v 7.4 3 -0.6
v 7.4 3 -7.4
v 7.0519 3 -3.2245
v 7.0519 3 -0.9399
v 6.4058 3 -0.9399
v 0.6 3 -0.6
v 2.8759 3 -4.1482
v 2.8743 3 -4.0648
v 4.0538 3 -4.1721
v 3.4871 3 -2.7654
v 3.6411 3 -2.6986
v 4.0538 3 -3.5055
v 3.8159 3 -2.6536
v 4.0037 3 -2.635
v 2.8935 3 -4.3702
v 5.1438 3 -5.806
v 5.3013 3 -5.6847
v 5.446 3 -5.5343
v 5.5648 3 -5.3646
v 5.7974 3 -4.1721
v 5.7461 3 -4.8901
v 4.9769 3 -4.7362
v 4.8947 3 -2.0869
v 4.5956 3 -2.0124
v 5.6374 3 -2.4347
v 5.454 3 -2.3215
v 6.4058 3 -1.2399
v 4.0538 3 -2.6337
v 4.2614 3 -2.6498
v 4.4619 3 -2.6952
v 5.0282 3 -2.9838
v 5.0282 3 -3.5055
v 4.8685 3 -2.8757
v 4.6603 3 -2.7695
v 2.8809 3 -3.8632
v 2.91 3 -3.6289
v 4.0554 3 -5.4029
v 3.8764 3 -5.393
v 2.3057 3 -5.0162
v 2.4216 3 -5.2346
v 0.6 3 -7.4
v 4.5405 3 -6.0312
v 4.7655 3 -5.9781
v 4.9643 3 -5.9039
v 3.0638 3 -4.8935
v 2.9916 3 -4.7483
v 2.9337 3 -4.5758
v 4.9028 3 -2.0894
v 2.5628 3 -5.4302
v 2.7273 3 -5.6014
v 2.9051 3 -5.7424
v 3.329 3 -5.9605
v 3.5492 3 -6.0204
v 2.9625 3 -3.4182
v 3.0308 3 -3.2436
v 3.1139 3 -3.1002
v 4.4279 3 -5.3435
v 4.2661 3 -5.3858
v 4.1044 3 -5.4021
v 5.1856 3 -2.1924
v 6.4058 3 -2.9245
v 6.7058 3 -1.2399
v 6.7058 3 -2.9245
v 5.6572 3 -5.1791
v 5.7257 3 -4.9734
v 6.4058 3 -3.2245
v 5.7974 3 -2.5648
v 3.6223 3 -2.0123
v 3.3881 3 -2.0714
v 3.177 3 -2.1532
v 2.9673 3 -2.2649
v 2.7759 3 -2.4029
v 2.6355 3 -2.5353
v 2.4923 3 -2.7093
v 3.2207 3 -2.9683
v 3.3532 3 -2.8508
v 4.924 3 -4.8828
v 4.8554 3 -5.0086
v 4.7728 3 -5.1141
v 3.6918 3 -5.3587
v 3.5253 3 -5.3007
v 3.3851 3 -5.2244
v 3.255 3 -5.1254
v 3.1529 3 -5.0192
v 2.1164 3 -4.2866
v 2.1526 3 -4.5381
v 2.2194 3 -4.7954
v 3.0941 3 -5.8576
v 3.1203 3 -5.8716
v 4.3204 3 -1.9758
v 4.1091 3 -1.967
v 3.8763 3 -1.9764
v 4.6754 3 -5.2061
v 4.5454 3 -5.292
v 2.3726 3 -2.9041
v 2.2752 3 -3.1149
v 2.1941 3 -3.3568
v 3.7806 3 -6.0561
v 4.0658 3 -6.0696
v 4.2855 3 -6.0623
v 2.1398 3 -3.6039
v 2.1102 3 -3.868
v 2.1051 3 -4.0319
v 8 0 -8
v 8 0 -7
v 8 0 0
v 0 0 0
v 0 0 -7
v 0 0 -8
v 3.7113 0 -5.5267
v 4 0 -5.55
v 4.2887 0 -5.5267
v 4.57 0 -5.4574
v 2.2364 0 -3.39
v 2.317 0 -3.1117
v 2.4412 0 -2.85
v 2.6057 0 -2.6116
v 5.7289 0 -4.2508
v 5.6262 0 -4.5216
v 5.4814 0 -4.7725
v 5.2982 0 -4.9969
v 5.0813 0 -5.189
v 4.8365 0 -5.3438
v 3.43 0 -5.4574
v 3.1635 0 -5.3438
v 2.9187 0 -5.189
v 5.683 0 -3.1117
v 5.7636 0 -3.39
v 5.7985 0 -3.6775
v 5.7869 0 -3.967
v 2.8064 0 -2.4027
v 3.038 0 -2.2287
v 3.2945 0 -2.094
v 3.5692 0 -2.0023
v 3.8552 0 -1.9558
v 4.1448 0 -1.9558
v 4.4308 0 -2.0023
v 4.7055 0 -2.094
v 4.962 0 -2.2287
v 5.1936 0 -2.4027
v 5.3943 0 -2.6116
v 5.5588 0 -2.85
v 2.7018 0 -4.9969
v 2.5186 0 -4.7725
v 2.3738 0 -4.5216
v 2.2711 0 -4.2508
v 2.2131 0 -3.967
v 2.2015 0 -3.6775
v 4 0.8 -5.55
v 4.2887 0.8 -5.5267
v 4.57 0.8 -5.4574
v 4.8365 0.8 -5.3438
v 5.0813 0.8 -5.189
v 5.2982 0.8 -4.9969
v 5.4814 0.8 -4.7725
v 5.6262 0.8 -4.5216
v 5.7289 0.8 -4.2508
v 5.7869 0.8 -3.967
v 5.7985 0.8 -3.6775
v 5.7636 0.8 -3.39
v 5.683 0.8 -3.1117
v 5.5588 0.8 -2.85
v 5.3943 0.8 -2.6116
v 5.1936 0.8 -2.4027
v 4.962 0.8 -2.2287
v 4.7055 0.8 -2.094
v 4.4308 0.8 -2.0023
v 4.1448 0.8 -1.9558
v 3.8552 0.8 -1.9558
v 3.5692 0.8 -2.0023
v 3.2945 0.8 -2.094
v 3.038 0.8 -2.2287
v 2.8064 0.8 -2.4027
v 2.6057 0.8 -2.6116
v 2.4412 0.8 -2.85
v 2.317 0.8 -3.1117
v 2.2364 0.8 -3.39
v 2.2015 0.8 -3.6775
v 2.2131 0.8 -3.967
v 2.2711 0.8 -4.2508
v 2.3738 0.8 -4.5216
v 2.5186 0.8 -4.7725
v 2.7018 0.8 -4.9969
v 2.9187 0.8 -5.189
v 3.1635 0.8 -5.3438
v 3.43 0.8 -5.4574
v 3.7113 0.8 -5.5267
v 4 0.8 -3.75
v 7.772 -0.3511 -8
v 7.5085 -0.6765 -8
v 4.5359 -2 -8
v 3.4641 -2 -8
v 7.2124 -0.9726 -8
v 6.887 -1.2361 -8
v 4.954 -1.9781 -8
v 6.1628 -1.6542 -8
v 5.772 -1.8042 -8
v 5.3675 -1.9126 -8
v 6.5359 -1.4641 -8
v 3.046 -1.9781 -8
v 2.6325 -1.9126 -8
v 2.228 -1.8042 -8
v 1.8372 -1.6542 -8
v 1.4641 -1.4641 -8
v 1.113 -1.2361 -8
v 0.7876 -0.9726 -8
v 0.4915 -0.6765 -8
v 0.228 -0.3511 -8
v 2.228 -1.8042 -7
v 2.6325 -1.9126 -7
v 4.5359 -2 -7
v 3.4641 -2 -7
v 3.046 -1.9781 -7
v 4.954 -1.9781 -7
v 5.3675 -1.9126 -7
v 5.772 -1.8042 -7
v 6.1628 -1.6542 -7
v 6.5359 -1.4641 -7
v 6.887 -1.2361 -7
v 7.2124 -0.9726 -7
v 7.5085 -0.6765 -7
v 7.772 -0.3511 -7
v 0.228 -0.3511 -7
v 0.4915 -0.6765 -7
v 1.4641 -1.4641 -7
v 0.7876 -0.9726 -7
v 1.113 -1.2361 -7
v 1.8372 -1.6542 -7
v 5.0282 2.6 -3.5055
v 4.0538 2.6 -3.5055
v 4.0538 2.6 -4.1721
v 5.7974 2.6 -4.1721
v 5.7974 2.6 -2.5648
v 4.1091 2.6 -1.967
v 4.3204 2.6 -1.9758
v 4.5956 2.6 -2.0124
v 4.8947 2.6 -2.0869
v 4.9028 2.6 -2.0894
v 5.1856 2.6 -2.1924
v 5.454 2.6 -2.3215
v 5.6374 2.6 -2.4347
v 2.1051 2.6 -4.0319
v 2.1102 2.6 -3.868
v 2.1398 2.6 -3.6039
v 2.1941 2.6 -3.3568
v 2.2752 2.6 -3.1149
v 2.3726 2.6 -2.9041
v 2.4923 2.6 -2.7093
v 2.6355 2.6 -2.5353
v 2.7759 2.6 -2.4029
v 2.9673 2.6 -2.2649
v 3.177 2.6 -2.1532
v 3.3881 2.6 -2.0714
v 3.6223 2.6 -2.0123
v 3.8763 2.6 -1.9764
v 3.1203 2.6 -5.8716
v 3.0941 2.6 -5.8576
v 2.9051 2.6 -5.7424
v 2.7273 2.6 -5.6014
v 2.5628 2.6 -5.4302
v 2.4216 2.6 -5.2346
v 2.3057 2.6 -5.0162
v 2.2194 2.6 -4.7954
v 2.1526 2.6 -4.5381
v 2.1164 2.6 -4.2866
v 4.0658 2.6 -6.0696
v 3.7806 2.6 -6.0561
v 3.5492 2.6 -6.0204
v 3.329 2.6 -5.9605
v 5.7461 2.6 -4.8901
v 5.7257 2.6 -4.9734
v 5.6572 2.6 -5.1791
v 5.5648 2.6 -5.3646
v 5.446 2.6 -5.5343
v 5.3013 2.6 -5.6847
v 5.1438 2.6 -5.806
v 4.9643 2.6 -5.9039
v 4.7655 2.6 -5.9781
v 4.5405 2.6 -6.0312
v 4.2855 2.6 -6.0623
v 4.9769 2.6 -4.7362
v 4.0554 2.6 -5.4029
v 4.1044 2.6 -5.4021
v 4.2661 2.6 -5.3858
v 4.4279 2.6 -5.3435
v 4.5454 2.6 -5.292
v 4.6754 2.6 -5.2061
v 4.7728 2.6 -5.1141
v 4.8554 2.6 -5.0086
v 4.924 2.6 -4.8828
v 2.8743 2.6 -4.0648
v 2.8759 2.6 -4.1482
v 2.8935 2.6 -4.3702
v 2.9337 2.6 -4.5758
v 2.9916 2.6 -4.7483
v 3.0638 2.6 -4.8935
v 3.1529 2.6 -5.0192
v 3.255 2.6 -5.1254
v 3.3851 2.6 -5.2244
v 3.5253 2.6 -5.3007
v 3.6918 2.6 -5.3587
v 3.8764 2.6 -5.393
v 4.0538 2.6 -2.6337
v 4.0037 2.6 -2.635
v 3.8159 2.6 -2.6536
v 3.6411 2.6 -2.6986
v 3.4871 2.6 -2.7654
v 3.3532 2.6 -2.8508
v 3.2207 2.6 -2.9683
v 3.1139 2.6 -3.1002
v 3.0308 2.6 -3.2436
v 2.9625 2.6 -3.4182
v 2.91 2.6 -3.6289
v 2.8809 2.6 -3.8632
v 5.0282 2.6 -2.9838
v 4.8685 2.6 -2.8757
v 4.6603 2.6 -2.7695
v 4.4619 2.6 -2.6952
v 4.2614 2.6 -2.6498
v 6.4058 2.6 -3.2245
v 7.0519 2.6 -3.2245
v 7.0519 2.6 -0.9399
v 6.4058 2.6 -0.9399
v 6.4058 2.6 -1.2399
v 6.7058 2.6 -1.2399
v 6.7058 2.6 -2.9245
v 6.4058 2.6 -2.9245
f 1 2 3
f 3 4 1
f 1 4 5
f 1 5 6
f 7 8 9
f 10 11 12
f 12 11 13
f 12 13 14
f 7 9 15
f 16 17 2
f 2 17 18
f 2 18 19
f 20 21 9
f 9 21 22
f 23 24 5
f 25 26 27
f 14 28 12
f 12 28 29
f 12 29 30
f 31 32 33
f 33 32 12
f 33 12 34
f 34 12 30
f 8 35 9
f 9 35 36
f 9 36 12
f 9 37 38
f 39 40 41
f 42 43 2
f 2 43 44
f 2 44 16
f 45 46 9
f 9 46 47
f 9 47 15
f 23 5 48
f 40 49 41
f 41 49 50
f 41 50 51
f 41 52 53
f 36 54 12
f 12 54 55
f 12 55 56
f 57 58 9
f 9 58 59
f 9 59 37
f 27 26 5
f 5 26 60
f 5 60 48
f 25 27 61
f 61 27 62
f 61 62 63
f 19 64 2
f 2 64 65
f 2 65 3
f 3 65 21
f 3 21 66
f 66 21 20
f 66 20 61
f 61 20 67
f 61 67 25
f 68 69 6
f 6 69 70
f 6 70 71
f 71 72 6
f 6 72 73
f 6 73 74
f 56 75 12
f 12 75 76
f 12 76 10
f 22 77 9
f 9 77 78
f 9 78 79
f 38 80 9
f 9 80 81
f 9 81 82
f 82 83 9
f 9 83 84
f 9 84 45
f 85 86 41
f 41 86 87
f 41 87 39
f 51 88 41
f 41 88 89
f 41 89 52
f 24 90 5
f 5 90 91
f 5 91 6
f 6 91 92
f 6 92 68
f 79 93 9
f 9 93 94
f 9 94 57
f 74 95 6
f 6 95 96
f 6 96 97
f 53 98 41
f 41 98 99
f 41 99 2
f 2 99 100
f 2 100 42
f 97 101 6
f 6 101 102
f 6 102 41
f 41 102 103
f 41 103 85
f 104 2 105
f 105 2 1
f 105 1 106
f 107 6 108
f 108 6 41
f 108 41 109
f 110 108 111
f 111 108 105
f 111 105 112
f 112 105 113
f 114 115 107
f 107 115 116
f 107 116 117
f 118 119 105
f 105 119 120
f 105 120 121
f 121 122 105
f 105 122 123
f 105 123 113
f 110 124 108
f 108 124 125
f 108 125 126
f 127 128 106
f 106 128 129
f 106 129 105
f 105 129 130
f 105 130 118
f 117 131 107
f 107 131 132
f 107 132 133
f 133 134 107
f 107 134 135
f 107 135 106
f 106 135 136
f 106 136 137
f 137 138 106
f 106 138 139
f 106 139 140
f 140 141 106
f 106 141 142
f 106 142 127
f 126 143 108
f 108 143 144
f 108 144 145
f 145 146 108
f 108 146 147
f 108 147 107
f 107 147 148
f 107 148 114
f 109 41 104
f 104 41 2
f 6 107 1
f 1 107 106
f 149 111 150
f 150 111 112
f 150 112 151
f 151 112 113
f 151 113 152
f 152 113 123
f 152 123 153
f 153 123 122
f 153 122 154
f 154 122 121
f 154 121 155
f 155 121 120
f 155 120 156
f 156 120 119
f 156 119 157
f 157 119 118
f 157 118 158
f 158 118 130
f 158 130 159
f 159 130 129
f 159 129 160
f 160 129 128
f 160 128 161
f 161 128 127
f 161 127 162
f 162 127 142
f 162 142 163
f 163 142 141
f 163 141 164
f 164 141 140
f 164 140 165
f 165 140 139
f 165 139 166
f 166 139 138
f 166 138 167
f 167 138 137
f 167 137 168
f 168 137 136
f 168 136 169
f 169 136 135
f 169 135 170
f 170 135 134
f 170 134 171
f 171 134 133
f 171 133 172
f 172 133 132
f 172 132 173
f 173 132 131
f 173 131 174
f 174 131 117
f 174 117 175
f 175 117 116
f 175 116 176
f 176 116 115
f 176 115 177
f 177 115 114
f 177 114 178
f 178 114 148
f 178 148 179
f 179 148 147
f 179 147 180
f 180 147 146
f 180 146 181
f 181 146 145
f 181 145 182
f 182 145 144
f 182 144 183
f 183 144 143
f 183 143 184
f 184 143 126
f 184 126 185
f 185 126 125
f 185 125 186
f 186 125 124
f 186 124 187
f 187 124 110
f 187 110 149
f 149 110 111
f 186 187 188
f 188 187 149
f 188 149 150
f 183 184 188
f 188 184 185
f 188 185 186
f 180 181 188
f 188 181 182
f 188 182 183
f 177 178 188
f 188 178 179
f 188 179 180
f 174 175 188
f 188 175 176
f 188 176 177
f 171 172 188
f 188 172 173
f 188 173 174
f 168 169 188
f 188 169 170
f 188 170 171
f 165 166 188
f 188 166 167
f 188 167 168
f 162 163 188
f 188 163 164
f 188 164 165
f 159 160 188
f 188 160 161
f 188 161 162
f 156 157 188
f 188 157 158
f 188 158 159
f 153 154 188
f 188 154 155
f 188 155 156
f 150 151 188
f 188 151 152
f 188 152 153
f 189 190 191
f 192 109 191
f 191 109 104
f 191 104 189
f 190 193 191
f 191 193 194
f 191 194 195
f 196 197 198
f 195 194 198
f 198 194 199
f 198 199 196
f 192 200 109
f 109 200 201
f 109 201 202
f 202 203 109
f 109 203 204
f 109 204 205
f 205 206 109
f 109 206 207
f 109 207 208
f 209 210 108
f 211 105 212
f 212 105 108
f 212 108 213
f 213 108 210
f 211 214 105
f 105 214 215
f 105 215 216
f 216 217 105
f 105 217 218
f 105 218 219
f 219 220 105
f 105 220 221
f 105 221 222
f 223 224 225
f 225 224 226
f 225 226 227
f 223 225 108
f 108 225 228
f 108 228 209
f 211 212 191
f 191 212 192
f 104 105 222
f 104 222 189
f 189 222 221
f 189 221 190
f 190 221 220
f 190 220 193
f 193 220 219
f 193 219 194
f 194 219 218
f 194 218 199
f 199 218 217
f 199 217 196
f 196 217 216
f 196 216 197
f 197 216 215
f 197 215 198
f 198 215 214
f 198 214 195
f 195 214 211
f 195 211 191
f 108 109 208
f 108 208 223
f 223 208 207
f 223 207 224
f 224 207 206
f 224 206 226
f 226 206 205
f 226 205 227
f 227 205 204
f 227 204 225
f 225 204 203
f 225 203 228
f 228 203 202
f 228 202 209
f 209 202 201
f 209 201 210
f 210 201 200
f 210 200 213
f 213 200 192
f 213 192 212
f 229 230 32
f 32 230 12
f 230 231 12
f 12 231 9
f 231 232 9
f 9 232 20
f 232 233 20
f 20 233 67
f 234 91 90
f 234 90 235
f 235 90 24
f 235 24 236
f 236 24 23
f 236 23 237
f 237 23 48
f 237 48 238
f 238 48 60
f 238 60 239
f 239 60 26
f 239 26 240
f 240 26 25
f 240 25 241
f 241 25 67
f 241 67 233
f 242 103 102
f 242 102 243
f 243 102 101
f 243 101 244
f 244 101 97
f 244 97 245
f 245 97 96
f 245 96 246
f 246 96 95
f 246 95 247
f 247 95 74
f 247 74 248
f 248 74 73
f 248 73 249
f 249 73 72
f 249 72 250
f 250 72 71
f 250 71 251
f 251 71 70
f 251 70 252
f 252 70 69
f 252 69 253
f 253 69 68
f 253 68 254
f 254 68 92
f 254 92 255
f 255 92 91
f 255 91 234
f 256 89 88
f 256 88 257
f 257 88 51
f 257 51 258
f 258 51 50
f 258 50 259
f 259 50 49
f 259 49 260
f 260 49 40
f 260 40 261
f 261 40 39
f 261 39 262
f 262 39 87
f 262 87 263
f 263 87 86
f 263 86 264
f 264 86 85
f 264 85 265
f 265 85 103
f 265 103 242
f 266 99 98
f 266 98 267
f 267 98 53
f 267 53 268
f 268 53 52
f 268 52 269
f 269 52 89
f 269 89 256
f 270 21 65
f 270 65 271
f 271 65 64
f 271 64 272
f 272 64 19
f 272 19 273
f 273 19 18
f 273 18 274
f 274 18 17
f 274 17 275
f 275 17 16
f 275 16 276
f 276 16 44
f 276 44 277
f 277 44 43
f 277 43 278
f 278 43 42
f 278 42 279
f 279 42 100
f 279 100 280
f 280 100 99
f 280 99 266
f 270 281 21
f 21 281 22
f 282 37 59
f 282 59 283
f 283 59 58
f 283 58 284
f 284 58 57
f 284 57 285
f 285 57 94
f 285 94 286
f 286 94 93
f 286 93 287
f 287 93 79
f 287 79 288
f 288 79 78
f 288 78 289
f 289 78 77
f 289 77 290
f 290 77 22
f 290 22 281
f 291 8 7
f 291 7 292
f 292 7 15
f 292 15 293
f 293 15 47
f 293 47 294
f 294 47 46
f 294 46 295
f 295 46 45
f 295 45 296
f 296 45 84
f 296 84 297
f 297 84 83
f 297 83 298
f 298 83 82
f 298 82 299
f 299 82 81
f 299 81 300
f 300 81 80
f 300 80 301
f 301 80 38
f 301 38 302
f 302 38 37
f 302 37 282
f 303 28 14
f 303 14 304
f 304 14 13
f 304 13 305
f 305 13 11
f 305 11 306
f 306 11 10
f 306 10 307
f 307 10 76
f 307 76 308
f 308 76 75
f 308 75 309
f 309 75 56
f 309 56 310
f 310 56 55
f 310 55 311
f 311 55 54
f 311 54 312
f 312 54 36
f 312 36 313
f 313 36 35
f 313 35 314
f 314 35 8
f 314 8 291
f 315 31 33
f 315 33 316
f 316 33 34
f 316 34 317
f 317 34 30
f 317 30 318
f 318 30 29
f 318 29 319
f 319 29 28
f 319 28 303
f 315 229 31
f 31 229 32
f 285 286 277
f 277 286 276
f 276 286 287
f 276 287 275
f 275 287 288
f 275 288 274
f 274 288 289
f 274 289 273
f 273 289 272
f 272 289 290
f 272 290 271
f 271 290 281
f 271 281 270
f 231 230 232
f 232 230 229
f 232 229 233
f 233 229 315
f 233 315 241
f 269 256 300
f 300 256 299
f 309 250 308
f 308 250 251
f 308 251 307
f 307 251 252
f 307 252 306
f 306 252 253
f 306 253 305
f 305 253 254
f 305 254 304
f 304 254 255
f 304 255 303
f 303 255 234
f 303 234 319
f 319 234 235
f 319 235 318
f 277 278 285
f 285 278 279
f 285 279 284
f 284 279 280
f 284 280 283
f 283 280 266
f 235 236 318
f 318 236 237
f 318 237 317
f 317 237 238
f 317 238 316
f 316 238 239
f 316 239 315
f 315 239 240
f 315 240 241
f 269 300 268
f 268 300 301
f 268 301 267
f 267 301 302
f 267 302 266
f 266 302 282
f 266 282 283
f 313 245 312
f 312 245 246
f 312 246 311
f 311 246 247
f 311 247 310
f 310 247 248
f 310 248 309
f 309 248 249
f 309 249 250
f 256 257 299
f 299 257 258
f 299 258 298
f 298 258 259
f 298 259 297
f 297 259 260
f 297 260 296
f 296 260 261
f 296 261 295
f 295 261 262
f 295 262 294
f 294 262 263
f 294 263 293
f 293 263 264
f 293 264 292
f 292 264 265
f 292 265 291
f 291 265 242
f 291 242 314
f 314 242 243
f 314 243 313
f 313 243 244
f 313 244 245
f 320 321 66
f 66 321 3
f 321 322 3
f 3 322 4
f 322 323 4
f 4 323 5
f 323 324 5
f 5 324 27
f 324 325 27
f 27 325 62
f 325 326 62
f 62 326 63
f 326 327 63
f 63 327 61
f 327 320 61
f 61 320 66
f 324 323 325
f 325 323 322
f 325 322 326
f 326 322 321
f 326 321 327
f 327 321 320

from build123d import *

# Parameters (mm, degrees)
SKETCH1_W               = 8
SKETCH1_H               = 8
BOSS_EXTRUDE1_DEPTH     = 3
CUT_EXTRUDE1_DEPTH      = 12.704699911
CUT_EXTRUDE1_DEPTH_BACK = 12.704699911
CUT_EXTRUDE2_DEPTH      = 11
SKETCH4_R               = 1.8
CUT_EXTRUDE3_DEPTH      = 0.8
SKETCH5_W               = 8
SKETCH5_H               = 1
BOSS_EXTRUDE2_DEPTH     = 2
FILLET1_R               = 4
CUT_EXTRUDE4_DEPTH      = 0.4
CUT_EXTRUDE5_DEPTH      = 0.4


with BuildPart() as part:
    # Sketch1 → Boss-Extrude1 (new body)
    with BuildSketch(Plane(origin=(0, 0, 0), x_dir=(1, 0, 0), z_dir=(0, 1, 0))):
        with Locations((4, 4)):
            Rectangle(SKETCH1_W, SKETCH1_H)
    extrude(amount=BOSS_EXTRUDE1_DEPTH)

    # Sketch2 → Cut-Extrude1 (cut, two sides: drawn at the far end of the back side and taken through both)
    with BuildSketch(Plane.XY.offset(-CUT_EXTRUDE1_DEPTH_BACK)):
        Polygon((0, 0), (0.6, 3), (0, 3), align=None)
        Polygon((8, 0), (7.4, 3), (8, 3), align=None)
    extrude(amount=CUT_EXTRUDE1_DEPTH + CUT_EXTRUDE1_DEPTH_BACK, mode=Mode.SUBTRACT)

    # Sketch3 → Cut-Extrude2 (cut)
    with BuildSketch(Plane(origin=(0, 0, 0), x_dir=(0, 0, -1), z_dir=(1, 0, 0))):
        Polygon((0, 0), (0.6, 3), (0, 3), align=None)
        Polygon((8, 3), (7.4, 3), (8, 0), align=None)
    extrude(amount=CUT_EXTRUDE2_DEPTH, mode=Mode.SUBTRACT)

    # Sketch4 → Cut-Extrude3 (cut)
    with BuildSketch(Plane.XZ):
        with Locations(Location((4, -3.75, 0), (0, 0, 270))):
            Circle(SKETCH4_R)
    extrude(amount=-CUT_EXTRUDE3_DEPTH, mode=Mode.SUBTRACT)

    # Sketch5 → Boss-Extrude2 (add)
    with BuildSketch(Plane.XZ):
        with Locations((4, -7.5)):
            Rectangle(SKETCH5_W, SKETCH5_H)
    extrude(amount=BOSS_EXTRUDE2_DEPTH)

    # Fillet1
    # the kernel refuses this fillet: 4 mm, written as the material it takes off along each edge
    with BuildSketch(Plane(origin=(8, -2, -16.660254038), x_dir=(0, 1, 0), z_dir=(0, 0, 1)), Plane(origin=(0, -2, 1.660254038), x_dir=(0, 1, 0), z_dir=(0, 0, -1))) as fillet1_piece_1:
        with BuildLine():
            CenterArc((4, 3.464101615), FILLET1_R, 180, 60)
            Line((0, 3.464101615), (-0.08, 3.464101615))
            Line((-0.08, 3.464101615), (-0.08, 0))
            Line((-0.08, 0), (0, -0.08))
            ThreePointArc((0, -0.08), (1, -0.08), (1.96, -0.069282032))
            Line((1.96, -0.069282032), (2, 0))
        make_face()
    extrude(amount=18.320508076, mode=Mode.SUBTRACT)

    # Sketch6 → Cut-Extrude4 (cut)
    with BuildSketch(Plane(origin=(0, 3, 0), x_dir=(1, 0, 0), z_dir=(0, 1, 0))):
        with BuildLine():
            Line((4.053794593, 3.505457585), (4.053794593, 4.172124252))
            Line((4.053794593, 4.172124252), (5.797384337, 4.172124252))
            Line((5.797384337, 4.172124252), (5.797384337, 2.564752457))
            add(Edge.make_bspline(
                [(5.797384337, 2.564752457), (5.775440275, 2.544992361), (5.730582172, 2.504598726), (5.657391115, 2.447633596), (5.576814656, 2.393249062), (5.489339896, 2.340343698), (5.394785806, 2.289343315), (5.293529517, 2.239537607), (5.185384208, 2.19141366), (5.032450931, 2.131128575), (4.835594452, 2.065533422), (4.594933471, 2.008496304), (4.352368706, 1.973513189), (4.190125473, 1.969167013), (4.109083055, 1.966996047)],
                knots=[0, 0, 0, 0, 0.581799769, 1.189316438, 1.825828404, 2.496525428, 3.203088405, 3.942228803, 4.719818701, 5.534979611, 7.181138583, 8.803804008, 10.403462225, 12, 12, 12, 12], degree=3))
            add(Edge.make_bspline(
                [(4.109083055, 1.966996047), (4.058312627, 1.967758979), (3.958229013, 1.969262944), (3.810482794, 1.981368296), (3.667847904, 2.002080495), (3.530208107, 2.031409962), (3.397097502, 2.066765974), (3.26907094, 2.111868039), (3.146582956, 2.166009466), (3.028523806, 2.226338905), (2.917094396, 2.295632176), (2.812187083, 2.371432832), (2.714561168, 2.454400196), (2.624566637, 2.544701507), (2.540998329, 2.641714843), (2.464831298, 2.745902822), (2.396526155, 2.857385727), (2.335239765, 2.974765127), (2.280716867, 3.097008702), (2.234709094, 3.223154334), (2.194374003, 3.351370526), (2.161222966, 3.482107416), (2.136875151, 3.615790052), (2.117947657, 3.751799892), (2.107781758, 3.890986734), (2.105984472, 3.984609884), (2.105076645, 4.031899893)],
                knots=[0, 0, 0, 0, 1.124918047, 2.217548049, 3.282233239, 4.316494221, 5.334437038, 6.332151046, 7.320712088, 8.300141923, 9.267552434, 10.225301062, 11.165776911, 12.103230934, 13.047553934, 14.000517593, 14.959782875, 15.941944936, 16.932894943, 17.923491392, 18.915624898, 19.910402922, 20.909870877, 21.92519501, 22.95199481, 24, 24, 24, 24], degree=3))
            add(Edge.make_bspline(
                [(2.105076645, 4.031899893), (2.105812881, 4.082940857), (2.107264322, 4.183564655), (2.119773705, 4.33228546), (2.139199297, 4.476648194), (2.168656936, 4.616390773), (2.20449512, 4.75216369), (2.248233589, 4.883877531), (2.301822866, 5.010556427), (2.361436063, 5.133283761), (2.429297714, 5.250362339), (2.505977563, 5.360290437), (2.589206445, 5.464176802), (2.680629029, 5.560371285), (2.779923369, 5.648827012), (2.886080088, 5.730522243), (2.998844963, 5.806865303), (3.079553832, 5.849911113), (3.120301004, 5.871643482)],
                knots=[0, 0, 0, 0, 1.105010302, 2.178452875, 3.229459892, 4.257086284, 5.268538906, 6.268935615, 7.259234261, 8.24469117, 9.221745683, 10.185929258, 11.144249683, 12.101504986, 13.055838221, 14.020611351, 15.000673771, 16, 16, 16, 16], degree=3))
            add(Edge.make_bspline(
                [(3.120301004, 5.871643482), (3.152638085, 5.887700047), (3.218317351, 5.920312247), (3.322813337, 5.959248923), (3.432101667, 5.994677516), (3.547832356, 6.021111591), (3.6692195, 6.042829226), (3.796209305, 6.059036287), (3.929210312, 6.067547239), (4.019595582, 6.068879104), (4.065813824, 6.069560149)],
                knots=[0, 0, 0, 0, 0.887969848, 1.803539625, 2.741143579, 3.713741423, 4.722068772, 5.775476617, 6.8624965, 8, 8, 8, 8], degree=3))
            add(Edge.make_bspline(
                [(4.065813824, 6.069560149), (4.125403824, 6.06867255), (4.241295356, 6.066946335), (4.410256532, 6.05256252), (4.569271079, 6.027772487), (4.718560435, 5.993629866), (4.857802985, 5.949731518), (4.986759025, 5.895763799), (5.106220057, 5.832812796), (5.214455834, 5.758355608), (5.313666102, 5.676257846), (5.403591975, 5.586419647), (5.48426965, 5.488707943), (5.555752499, 5.383614392), (5.617477906, 5.2707046), (5.670549966, 5.151008328), (5.714234697, 5.023616882), (5.73534656, 4.935145779), (5.746102286, 4.89007297)],
                knots=[0, 0, 0, 0, 1.271135529, 2.472123572, 3.614091059, 4.701890498, 5.736279567, 6.724681829, 7.680621489, 8.611506429, 9.52200816, 10.424540711, 11.318996785, 12.221421405, 13.131851814, 14.060431888, 15.011860567, 16, 16, 16, 16], degree=3))
            Line((5.746102286, 4.89007297), (4.976871517, 4.736226816))
            add(Edge.make_bspline(
                [(4.976871517, 4.736226816), (4.969254672, 4.761468809), (4.95422678, 4.81127079), (4.925094227, 4.882758251), (4.891539922, 4.949961192), (4.853483379, 5.013366036), (4.810541206, 5.072582433), (4.761675926, 5.126971617), (4.709961453, 5.179014495), (4.652020351, 5.225088646), (4.590259767, 5.266624284), (4.52537561, 5.304078684), (4.455901775, 5.334453158), (4.382811411, 5.358892727), (4.306461756, 5.37964837), (4.225856415, 5.392413169), (4.141900573, 5.402040295), (4.084540473, 5.402606041), (4.055397158, 5.402893482)],
                knots=[0, 0, 0, 0, 1.027736275, 2.027704492, 3.005900071, 3.954421694, 4.908588141, 5.853155543, 6.803277083, 7.766271258, 8.734041521, 9.704274878, 10.683578894, 11.68490234, 12.708089448, 13.76461009, 14.864251086, 16, 16, 16, 16], degree=3))
            add(Edge.make_bspline(
                [(4.055397158, 5.402893482), (4.01128773, 5.401716629), (3.925204424, 5.399419898), (3.799534269, 5.384433236), (3.680976007, 5.357770589), (3.569219615, 5.320994553), (3.46406021, 5.273789934), (3.366918824, 5.2143961), (3.275376693, 5.146327474), (3.192038786, 5.066438045), (3.116460773, 4.976859168), (3.051034483, 4.876522357), (2.996567377, 4.765751945), (2.951955713, 4.645104141), (2.91643531, 4.514573915), (2.892338718, 4.373699188), (2.876594443, 4.222696077), (2.875085403, 4.118480819), (2.874307414, 4.064752457)],
                knots=[0, 0, 0, 0, 1.043810997, 2.037086103, 2.989314757, 3.91471467, 4.817033861, 5.710208705, 6.603920097, 7.511448416, 8.435617211, 9.371747005, 10.338444094, 11.350425613, 12.411431869, 13.5347293, 14.729025275, 16, 16, 16, 16], degree=3))
            add(Edge.make_bspline(
                [(2.874307414, 4.064752457), (2.875118698, 4.00702506), (2.876695474, 3.894828493), (2.892027057, 3.732262921), (2.917247643, 3.580803592), (2.95342224, 3.44064155), (2.998941149, 3.311279521), (3.053656914, 3.192304252), (3.121182779, 3.085923464), (3.197244894, 2.990004781), (3.28225913, 2.906191636), (3.37384152, 2.833121051), (3.471482188, 2.77119638), (3.576081527, 2.721395085), (3.686320303, 2.681751972), (3.80321198, 2.653959398), (3.926408504, 2.636695674), (4.010734238, 2.634687946), (4.053794593, 2.633662713)],
                knots=[0, 0, 0, 0, 1.318042826, 2.561693173, 3.724929596, 4.821196409, 5.862977565, 6.853497791, 7.804600806, 8.73339865, 9.643480846, 10.524649628, 11.404635349, 12.277659519, 13.165160235, 14.075017549, 15.017020959, 16, 16, 16, 16], degree=3))
            add(Edge.make_bspline(
                [(4.053794593, 2.633662713), (4.097408334, 2.634875039), (4.185053042, 2.637311287), (4.316328539, 2.657956024), (4.448117665, 2.68833542), (4.577327471, 2.734163302), (4.70281192, 2.786727561), (4.819965055, 2.847306941), (4.929675356, 2.910453005), (4.995733738, 2.959668979), (5.028153568, 2.98382297)],
                knots=[0, 0, 0, 0, 0.993821502, 1.997150276, 3.023717651, 4.073291794, 5.118404464, 6.123376694, 7.078999408, 8, 8, 8, 8], degree=3))
            Line((5.028153568, 2.98382297), (5.028153568, 3.505457585))
            Line((5.028153568, 3.505457585), (4.053794593, 3.505457585))
        make_face()
    extrude(amount=-CUT_EXTRUDE4_DEPTH, mode=Mode.SUBTRACT)

    # Sketch7 → Cut-Extrude5 (cut)
    with BuildSketch(Plane(origin=(0, 3, 0), x_dir=(1, 0, 0), z_dir=(0, 1, 0))):
        Polygon((7.051946272, 3.224540865), (7.051946272, 0.93992548), (6.405792426, 0.93992548), (6.405792426, 1.23992548), (6.705792426, 1.23992548), (6.705792426, 2.924540865), (6.405792426, 2.924540865), (6.405792426, 3.224540865), align=None)
    extrude(amount=-CUT_EXTRUDE5_DEPTH, mode=Mode.SUBTRACT)


solid = part.part
